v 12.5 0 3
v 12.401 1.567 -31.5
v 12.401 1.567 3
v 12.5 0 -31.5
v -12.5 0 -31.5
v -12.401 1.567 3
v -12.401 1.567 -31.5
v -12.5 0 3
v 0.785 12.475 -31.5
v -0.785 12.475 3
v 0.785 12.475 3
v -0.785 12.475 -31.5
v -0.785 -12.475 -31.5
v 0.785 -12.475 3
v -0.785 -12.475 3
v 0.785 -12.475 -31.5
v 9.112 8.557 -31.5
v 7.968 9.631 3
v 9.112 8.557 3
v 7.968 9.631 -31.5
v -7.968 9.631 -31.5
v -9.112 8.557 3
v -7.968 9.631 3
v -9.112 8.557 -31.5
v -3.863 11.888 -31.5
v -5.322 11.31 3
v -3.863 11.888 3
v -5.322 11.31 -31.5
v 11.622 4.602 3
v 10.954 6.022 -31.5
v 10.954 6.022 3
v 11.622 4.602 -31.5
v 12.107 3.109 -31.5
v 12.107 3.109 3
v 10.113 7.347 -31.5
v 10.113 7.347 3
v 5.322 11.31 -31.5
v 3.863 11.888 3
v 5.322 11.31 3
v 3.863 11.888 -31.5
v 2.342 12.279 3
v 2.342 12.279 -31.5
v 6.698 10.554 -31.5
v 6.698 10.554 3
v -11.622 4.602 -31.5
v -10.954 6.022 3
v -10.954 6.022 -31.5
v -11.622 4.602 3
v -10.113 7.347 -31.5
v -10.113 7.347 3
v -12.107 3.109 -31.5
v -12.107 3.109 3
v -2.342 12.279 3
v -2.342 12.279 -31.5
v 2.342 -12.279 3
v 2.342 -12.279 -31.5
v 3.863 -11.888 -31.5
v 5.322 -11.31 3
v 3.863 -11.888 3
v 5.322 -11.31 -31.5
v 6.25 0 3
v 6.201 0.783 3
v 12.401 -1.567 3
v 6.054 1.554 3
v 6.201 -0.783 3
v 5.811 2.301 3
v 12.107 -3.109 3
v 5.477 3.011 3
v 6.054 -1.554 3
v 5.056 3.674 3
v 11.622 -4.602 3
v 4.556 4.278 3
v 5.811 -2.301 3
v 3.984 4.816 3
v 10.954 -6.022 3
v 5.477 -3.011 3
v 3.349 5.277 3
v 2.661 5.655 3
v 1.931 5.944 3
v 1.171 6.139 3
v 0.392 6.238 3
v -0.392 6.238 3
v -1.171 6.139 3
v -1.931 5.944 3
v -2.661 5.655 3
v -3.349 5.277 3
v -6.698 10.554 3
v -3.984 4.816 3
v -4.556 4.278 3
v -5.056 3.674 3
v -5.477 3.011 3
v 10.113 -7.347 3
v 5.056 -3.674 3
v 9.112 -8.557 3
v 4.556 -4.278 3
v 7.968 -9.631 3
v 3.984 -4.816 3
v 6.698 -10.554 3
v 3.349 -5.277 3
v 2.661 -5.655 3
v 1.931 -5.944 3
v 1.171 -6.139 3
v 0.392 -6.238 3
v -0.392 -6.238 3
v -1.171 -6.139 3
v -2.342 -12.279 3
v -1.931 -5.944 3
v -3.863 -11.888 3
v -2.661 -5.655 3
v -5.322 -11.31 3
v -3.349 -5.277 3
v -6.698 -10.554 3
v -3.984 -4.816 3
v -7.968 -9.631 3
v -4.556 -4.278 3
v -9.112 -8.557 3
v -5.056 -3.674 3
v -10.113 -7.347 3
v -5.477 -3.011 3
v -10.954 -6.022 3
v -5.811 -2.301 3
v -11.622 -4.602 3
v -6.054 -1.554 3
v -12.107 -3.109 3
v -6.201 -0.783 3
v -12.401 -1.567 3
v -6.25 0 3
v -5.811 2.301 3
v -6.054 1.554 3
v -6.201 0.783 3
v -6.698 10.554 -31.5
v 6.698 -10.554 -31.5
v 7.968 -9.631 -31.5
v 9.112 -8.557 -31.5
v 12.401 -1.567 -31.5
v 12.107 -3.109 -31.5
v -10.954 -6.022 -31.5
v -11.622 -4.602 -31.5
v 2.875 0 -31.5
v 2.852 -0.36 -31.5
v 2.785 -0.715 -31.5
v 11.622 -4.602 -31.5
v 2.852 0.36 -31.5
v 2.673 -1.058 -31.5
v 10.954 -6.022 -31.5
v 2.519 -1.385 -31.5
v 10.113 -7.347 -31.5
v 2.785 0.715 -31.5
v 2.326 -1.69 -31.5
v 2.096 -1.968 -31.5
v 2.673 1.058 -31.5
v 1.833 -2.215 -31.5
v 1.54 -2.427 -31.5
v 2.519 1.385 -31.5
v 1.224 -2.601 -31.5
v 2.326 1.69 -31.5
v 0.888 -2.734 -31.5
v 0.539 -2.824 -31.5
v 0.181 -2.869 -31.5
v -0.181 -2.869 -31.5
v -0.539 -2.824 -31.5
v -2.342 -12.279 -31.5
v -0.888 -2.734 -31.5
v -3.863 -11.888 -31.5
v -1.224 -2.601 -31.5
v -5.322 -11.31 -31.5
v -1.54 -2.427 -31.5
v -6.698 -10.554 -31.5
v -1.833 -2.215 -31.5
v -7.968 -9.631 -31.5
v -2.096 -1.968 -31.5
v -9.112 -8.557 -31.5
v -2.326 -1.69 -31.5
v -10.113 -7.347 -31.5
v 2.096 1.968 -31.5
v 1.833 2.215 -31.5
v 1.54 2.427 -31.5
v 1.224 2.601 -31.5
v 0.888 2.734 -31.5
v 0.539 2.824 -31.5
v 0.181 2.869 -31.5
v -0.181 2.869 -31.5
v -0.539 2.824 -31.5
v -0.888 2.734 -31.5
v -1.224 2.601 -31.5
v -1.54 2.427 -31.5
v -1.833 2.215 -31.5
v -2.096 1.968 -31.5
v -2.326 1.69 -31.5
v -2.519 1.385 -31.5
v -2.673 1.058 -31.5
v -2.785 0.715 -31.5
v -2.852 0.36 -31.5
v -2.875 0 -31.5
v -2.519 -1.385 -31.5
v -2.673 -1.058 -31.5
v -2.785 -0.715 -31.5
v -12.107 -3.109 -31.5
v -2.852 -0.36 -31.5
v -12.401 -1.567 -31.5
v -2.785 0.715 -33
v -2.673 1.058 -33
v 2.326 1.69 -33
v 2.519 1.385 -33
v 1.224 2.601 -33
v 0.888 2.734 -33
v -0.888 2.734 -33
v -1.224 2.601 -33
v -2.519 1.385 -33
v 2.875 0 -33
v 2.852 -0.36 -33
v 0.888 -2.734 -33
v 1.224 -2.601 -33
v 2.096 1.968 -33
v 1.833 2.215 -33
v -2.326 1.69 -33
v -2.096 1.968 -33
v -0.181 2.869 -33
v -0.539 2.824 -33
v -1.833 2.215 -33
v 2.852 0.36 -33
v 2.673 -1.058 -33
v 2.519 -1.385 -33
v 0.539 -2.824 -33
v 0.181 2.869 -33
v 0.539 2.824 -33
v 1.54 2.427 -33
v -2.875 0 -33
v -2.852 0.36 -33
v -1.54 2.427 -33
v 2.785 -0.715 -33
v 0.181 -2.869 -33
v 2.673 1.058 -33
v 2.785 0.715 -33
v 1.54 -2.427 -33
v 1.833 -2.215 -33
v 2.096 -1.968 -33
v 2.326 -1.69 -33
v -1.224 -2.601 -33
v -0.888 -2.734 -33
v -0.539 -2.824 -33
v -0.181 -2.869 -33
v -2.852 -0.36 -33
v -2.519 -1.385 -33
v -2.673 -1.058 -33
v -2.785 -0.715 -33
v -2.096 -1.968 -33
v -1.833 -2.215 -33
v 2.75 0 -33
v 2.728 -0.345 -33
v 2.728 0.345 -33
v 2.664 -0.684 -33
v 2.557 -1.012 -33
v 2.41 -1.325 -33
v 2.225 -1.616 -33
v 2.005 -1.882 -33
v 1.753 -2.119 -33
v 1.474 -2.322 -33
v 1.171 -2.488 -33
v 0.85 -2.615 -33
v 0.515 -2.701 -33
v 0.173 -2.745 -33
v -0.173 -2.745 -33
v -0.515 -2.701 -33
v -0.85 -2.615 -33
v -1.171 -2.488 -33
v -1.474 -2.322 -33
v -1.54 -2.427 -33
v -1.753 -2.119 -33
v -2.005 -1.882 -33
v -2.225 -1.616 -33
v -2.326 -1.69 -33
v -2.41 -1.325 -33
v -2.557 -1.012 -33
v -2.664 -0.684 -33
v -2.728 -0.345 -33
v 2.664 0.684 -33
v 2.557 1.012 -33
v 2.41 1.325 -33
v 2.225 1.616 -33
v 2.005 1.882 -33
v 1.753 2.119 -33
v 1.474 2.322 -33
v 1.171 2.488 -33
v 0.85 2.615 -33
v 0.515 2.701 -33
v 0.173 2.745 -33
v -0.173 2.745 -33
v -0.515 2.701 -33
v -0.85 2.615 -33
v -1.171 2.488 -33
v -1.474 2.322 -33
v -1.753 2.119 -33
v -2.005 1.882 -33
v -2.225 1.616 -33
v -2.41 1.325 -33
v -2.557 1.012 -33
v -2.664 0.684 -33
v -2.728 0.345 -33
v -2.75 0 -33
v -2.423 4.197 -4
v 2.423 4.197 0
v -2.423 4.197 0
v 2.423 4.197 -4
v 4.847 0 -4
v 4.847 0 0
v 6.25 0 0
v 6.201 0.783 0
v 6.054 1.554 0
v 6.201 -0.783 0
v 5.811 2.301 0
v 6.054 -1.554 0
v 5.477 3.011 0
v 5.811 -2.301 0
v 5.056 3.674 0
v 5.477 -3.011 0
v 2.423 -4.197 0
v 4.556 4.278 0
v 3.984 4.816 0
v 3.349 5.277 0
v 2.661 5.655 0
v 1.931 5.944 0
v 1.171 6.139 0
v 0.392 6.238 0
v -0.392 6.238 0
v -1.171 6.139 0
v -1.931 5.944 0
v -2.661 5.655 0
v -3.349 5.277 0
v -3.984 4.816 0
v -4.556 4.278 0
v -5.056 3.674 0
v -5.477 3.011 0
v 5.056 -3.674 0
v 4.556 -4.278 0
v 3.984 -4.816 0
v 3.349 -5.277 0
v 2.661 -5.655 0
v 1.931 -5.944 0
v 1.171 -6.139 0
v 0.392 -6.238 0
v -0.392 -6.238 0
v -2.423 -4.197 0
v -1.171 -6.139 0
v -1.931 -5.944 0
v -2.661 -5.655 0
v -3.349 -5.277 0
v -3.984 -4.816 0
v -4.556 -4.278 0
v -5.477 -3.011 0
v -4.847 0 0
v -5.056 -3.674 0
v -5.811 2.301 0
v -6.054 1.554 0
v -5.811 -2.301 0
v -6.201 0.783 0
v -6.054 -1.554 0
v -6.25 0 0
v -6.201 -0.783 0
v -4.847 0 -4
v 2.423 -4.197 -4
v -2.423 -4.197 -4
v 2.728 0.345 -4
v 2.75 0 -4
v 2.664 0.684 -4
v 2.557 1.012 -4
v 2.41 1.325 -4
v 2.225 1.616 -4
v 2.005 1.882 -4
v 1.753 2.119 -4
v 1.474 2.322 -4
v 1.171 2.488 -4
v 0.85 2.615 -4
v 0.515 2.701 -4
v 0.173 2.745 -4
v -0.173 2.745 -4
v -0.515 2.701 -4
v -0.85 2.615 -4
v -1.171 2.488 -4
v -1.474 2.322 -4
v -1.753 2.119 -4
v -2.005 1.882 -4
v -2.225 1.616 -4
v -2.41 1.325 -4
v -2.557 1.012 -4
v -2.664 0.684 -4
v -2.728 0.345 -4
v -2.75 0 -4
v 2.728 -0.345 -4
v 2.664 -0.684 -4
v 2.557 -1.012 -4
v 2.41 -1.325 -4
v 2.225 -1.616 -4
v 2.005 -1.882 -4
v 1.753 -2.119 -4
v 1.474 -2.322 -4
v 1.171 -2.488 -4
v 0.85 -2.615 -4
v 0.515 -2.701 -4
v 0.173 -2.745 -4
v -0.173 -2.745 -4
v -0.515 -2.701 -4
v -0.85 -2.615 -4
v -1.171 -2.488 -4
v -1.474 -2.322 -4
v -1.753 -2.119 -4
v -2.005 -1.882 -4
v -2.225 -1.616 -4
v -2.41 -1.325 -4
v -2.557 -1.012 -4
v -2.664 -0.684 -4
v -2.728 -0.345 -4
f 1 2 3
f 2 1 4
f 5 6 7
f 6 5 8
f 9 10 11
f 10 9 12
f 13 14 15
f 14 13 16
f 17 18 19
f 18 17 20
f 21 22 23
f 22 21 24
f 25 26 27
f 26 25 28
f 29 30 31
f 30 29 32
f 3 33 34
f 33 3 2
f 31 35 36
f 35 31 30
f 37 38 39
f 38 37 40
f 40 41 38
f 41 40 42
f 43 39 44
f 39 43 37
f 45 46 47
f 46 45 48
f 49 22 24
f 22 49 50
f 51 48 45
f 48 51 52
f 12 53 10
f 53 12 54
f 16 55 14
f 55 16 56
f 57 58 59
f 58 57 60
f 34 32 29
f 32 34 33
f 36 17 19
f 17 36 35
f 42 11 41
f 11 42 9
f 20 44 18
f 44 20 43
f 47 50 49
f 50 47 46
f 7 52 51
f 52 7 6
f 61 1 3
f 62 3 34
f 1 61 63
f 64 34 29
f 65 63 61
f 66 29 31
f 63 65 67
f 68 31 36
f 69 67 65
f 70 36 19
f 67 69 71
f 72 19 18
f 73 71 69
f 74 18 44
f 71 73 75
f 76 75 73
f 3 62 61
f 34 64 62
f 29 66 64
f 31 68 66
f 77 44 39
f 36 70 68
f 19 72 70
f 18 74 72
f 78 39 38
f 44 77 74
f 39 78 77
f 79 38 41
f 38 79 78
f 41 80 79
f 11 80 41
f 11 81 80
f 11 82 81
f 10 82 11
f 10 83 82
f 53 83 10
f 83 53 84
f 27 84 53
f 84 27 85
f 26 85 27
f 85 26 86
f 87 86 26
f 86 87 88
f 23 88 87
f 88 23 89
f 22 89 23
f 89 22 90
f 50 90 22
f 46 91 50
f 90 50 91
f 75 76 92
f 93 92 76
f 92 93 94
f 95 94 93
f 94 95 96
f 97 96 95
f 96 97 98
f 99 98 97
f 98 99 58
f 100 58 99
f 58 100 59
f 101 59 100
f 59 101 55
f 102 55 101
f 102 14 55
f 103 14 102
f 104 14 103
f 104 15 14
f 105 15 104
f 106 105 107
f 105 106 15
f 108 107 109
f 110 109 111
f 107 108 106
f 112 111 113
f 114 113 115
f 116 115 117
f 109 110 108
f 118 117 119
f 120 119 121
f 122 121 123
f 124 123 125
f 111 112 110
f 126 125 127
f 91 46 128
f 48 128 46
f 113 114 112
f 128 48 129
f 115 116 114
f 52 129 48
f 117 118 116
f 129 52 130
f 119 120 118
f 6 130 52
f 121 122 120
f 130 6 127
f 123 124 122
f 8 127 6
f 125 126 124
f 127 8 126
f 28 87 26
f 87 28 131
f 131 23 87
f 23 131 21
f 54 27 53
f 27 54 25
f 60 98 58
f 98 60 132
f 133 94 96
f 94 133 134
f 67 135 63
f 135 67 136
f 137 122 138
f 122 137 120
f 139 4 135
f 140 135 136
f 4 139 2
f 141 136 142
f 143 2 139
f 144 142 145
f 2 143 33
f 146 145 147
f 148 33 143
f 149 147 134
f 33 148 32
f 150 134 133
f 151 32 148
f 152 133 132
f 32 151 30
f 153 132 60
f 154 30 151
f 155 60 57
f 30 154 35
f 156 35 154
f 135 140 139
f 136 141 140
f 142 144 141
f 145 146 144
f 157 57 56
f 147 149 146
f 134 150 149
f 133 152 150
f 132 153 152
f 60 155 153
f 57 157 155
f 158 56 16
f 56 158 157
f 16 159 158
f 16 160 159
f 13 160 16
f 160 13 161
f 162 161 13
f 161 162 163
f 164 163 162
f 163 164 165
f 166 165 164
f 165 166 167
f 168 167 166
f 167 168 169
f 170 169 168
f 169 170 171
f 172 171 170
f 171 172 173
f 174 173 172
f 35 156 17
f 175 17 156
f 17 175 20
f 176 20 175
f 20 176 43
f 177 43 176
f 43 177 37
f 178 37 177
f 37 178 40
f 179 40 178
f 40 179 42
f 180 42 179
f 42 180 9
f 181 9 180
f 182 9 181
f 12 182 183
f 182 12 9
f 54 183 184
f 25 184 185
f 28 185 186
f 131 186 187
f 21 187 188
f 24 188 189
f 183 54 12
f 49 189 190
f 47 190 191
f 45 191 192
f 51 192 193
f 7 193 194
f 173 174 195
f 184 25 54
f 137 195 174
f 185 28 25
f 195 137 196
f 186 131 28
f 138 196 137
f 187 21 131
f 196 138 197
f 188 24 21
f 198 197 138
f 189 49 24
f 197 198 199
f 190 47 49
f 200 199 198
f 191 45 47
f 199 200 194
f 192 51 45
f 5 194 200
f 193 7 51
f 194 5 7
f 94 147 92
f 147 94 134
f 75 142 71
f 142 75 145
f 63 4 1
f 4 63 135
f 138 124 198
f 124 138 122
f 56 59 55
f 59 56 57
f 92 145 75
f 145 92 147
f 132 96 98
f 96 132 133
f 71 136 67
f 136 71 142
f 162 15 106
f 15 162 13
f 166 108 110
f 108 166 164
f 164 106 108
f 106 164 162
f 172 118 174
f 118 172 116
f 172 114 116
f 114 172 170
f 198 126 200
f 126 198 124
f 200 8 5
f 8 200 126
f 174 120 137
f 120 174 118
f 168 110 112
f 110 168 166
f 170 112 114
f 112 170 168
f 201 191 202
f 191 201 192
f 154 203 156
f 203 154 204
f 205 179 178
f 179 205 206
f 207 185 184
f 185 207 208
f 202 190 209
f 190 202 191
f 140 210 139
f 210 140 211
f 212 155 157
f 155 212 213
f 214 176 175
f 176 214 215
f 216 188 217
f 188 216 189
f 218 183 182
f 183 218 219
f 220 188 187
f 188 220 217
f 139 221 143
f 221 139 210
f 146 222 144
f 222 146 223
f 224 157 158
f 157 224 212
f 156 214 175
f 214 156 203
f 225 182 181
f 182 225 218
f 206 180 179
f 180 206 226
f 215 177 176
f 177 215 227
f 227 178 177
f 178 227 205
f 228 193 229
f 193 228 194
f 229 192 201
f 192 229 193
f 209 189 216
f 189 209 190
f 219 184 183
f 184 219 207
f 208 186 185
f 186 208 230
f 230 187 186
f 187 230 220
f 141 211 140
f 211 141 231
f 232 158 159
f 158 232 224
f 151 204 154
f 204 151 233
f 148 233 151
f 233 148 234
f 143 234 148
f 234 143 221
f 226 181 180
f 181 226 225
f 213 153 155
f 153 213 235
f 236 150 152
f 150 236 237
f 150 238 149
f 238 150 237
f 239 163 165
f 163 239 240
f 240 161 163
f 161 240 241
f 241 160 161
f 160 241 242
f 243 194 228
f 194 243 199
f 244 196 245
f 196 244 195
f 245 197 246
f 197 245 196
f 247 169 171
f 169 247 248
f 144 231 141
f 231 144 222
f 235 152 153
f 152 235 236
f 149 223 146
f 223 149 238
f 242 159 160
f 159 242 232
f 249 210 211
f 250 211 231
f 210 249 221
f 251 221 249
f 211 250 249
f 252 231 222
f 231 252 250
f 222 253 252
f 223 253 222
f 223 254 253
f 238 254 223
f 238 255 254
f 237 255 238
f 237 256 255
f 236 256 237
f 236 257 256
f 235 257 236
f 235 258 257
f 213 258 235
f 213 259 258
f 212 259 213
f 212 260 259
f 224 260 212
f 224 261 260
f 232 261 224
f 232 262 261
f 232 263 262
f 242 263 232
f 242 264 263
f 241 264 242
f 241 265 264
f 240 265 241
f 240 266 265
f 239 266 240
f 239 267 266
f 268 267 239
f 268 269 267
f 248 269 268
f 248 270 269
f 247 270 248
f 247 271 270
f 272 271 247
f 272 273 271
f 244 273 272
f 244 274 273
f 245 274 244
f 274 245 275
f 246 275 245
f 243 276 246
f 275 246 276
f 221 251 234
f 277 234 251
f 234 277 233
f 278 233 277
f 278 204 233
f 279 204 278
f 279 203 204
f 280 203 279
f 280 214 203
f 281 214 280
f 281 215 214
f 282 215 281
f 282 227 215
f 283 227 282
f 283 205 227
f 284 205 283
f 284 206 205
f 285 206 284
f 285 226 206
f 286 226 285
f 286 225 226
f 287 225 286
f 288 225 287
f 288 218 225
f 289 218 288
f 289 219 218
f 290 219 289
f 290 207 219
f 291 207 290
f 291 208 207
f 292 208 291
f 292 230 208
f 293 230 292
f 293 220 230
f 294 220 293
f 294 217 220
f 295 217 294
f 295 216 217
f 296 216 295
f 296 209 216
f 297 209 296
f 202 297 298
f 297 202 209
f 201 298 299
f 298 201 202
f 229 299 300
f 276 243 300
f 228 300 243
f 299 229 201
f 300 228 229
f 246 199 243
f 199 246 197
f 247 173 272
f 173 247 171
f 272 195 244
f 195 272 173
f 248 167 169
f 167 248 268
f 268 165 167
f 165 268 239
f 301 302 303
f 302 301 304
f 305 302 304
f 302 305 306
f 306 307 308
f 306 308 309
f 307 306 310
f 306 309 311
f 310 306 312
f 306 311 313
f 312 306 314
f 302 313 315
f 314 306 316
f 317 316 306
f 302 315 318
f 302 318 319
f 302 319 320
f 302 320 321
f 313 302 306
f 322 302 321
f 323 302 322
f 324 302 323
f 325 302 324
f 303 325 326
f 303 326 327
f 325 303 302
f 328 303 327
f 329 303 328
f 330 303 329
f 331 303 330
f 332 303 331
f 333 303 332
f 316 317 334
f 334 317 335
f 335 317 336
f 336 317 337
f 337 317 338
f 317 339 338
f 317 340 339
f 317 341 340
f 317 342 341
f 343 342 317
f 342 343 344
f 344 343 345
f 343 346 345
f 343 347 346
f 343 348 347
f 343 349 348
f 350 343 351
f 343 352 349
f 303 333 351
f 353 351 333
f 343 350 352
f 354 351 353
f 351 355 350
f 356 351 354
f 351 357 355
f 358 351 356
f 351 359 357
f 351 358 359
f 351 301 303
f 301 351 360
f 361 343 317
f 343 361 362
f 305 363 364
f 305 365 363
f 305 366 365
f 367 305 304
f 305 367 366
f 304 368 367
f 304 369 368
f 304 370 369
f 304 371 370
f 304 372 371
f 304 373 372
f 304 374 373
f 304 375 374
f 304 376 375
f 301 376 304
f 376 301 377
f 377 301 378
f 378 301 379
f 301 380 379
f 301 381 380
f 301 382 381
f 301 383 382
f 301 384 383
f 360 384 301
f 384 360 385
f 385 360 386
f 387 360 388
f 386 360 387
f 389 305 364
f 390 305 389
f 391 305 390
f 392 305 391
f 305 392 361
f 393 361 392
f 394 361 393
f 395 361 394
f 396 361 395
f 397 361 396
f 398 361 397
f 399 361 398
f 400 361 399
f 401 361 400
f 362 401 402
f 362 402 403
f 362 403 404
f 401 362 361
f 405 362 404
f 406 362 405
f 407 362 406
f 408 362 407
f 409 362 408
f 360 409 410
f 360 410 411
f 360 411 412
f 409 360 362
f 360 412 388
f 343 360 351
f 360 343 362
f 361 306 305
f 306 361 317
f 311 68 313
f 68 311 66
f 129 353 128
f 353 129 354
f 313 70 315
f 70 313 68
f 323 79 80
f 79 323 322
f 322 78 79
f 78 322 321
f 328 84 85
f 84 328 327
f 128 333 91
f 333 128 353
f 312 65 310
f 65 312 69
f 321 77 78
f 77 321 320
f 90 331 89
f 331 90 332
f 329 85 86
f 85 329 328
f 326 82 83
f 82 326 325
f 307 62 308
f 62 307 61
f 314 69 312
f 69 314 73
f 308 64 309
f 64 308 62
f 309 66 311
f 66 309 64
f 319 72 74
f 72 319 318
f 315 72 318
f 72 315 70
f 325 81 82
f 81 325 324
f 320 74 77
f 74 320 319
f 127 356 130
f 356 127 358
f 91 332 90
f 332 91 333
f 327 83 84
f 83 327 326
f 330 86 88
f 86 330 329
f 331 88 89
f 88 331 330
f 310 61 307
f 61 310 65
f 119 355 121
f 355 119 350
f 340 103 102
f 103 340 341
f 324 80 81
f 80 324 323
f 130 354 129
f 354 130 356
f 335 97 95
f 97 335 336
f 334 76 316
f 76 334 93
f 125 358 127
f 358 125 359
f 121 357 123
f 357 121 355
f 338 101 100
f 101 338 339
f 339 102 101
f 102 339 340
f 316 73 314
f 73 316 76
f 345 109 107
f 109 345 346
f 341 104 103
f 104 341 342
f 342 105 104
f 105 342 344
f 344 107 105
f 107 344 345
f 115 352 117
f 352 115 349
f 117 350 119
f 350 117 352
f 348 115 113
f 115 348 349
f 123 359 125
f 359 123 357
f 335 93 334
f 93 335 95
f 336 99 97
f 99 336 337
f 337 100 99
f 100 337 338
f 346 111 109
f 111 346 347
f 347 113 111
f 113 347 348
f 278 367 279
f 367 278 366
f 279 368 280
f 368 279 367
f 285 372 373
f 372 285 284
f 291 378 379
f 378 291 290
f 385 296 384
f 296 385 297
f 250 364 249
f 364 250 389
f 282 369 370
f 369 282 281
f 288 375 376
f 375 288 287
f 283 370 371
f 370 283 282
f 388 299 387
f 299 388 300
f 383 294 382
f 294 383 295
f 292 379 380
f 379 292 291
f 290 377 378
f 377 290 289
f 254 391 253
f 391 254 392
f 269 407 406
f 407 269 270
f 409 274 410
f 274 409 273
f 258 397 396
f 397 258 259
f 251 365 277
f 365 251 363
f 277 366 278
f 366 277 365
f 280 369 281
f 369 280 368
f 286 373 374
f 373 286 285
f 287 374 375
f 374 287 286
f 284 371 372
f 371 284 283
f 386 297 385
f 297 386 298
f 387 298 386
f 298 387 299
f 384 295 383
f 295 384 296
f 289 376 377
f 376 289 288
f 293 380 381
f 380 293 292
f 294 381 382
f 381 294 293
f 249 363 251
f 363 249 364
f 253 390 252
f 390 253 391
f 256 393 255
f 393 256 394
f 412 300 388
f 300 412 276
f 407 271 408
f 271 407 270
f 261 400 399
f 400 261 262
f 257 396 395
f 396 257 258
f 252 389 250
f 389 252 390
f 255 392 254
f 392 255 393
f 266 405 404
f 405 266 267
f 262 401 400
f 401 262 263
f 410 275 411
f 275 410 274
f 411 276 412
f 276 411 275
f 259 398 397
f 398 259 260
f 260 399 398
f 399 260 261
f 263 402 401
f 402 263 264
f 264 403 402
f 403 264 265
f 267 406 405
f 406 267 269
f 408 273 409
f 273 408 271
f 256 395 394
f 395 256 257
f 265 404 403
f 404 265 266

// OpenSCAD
$fn = 50;

difference() {
	union() {
		translate(v = [0, 0, -31.5]) {
			cylinder(h = 34.5, r = 12.5);
		}
		#translate(v = [0, 0, -33.0]) {
			cylinder(h = 33, r = 2.875);
		}
	}
	union() {
		translate(v = [0, 0, 0]) {
			rotate(a = [0, 0, 0]) {
				difference() {
					union() {
						translate(v = [0, 0, -4]) {
							linear_extrude(height = 4) {
								polygon(points = [[4.8468, 0.0], [2.4234000000000004, 4.197451927062417], [-2.423399999999999, 4.197451927062417], [-4.8468, 5.935618106107392e-16], [-2.423400000000002, -4.197451927062416], [2.423399999999997, -4.197451927062419]]);
							}
						}
					}
					union();
				}
			}
		}
		#cylinder(h = 3, r = 6.25);
		#translate(v = [0, 0, -100.0]) {
			cylinder(h = 200, r = 2.75);
		}
	}
}
